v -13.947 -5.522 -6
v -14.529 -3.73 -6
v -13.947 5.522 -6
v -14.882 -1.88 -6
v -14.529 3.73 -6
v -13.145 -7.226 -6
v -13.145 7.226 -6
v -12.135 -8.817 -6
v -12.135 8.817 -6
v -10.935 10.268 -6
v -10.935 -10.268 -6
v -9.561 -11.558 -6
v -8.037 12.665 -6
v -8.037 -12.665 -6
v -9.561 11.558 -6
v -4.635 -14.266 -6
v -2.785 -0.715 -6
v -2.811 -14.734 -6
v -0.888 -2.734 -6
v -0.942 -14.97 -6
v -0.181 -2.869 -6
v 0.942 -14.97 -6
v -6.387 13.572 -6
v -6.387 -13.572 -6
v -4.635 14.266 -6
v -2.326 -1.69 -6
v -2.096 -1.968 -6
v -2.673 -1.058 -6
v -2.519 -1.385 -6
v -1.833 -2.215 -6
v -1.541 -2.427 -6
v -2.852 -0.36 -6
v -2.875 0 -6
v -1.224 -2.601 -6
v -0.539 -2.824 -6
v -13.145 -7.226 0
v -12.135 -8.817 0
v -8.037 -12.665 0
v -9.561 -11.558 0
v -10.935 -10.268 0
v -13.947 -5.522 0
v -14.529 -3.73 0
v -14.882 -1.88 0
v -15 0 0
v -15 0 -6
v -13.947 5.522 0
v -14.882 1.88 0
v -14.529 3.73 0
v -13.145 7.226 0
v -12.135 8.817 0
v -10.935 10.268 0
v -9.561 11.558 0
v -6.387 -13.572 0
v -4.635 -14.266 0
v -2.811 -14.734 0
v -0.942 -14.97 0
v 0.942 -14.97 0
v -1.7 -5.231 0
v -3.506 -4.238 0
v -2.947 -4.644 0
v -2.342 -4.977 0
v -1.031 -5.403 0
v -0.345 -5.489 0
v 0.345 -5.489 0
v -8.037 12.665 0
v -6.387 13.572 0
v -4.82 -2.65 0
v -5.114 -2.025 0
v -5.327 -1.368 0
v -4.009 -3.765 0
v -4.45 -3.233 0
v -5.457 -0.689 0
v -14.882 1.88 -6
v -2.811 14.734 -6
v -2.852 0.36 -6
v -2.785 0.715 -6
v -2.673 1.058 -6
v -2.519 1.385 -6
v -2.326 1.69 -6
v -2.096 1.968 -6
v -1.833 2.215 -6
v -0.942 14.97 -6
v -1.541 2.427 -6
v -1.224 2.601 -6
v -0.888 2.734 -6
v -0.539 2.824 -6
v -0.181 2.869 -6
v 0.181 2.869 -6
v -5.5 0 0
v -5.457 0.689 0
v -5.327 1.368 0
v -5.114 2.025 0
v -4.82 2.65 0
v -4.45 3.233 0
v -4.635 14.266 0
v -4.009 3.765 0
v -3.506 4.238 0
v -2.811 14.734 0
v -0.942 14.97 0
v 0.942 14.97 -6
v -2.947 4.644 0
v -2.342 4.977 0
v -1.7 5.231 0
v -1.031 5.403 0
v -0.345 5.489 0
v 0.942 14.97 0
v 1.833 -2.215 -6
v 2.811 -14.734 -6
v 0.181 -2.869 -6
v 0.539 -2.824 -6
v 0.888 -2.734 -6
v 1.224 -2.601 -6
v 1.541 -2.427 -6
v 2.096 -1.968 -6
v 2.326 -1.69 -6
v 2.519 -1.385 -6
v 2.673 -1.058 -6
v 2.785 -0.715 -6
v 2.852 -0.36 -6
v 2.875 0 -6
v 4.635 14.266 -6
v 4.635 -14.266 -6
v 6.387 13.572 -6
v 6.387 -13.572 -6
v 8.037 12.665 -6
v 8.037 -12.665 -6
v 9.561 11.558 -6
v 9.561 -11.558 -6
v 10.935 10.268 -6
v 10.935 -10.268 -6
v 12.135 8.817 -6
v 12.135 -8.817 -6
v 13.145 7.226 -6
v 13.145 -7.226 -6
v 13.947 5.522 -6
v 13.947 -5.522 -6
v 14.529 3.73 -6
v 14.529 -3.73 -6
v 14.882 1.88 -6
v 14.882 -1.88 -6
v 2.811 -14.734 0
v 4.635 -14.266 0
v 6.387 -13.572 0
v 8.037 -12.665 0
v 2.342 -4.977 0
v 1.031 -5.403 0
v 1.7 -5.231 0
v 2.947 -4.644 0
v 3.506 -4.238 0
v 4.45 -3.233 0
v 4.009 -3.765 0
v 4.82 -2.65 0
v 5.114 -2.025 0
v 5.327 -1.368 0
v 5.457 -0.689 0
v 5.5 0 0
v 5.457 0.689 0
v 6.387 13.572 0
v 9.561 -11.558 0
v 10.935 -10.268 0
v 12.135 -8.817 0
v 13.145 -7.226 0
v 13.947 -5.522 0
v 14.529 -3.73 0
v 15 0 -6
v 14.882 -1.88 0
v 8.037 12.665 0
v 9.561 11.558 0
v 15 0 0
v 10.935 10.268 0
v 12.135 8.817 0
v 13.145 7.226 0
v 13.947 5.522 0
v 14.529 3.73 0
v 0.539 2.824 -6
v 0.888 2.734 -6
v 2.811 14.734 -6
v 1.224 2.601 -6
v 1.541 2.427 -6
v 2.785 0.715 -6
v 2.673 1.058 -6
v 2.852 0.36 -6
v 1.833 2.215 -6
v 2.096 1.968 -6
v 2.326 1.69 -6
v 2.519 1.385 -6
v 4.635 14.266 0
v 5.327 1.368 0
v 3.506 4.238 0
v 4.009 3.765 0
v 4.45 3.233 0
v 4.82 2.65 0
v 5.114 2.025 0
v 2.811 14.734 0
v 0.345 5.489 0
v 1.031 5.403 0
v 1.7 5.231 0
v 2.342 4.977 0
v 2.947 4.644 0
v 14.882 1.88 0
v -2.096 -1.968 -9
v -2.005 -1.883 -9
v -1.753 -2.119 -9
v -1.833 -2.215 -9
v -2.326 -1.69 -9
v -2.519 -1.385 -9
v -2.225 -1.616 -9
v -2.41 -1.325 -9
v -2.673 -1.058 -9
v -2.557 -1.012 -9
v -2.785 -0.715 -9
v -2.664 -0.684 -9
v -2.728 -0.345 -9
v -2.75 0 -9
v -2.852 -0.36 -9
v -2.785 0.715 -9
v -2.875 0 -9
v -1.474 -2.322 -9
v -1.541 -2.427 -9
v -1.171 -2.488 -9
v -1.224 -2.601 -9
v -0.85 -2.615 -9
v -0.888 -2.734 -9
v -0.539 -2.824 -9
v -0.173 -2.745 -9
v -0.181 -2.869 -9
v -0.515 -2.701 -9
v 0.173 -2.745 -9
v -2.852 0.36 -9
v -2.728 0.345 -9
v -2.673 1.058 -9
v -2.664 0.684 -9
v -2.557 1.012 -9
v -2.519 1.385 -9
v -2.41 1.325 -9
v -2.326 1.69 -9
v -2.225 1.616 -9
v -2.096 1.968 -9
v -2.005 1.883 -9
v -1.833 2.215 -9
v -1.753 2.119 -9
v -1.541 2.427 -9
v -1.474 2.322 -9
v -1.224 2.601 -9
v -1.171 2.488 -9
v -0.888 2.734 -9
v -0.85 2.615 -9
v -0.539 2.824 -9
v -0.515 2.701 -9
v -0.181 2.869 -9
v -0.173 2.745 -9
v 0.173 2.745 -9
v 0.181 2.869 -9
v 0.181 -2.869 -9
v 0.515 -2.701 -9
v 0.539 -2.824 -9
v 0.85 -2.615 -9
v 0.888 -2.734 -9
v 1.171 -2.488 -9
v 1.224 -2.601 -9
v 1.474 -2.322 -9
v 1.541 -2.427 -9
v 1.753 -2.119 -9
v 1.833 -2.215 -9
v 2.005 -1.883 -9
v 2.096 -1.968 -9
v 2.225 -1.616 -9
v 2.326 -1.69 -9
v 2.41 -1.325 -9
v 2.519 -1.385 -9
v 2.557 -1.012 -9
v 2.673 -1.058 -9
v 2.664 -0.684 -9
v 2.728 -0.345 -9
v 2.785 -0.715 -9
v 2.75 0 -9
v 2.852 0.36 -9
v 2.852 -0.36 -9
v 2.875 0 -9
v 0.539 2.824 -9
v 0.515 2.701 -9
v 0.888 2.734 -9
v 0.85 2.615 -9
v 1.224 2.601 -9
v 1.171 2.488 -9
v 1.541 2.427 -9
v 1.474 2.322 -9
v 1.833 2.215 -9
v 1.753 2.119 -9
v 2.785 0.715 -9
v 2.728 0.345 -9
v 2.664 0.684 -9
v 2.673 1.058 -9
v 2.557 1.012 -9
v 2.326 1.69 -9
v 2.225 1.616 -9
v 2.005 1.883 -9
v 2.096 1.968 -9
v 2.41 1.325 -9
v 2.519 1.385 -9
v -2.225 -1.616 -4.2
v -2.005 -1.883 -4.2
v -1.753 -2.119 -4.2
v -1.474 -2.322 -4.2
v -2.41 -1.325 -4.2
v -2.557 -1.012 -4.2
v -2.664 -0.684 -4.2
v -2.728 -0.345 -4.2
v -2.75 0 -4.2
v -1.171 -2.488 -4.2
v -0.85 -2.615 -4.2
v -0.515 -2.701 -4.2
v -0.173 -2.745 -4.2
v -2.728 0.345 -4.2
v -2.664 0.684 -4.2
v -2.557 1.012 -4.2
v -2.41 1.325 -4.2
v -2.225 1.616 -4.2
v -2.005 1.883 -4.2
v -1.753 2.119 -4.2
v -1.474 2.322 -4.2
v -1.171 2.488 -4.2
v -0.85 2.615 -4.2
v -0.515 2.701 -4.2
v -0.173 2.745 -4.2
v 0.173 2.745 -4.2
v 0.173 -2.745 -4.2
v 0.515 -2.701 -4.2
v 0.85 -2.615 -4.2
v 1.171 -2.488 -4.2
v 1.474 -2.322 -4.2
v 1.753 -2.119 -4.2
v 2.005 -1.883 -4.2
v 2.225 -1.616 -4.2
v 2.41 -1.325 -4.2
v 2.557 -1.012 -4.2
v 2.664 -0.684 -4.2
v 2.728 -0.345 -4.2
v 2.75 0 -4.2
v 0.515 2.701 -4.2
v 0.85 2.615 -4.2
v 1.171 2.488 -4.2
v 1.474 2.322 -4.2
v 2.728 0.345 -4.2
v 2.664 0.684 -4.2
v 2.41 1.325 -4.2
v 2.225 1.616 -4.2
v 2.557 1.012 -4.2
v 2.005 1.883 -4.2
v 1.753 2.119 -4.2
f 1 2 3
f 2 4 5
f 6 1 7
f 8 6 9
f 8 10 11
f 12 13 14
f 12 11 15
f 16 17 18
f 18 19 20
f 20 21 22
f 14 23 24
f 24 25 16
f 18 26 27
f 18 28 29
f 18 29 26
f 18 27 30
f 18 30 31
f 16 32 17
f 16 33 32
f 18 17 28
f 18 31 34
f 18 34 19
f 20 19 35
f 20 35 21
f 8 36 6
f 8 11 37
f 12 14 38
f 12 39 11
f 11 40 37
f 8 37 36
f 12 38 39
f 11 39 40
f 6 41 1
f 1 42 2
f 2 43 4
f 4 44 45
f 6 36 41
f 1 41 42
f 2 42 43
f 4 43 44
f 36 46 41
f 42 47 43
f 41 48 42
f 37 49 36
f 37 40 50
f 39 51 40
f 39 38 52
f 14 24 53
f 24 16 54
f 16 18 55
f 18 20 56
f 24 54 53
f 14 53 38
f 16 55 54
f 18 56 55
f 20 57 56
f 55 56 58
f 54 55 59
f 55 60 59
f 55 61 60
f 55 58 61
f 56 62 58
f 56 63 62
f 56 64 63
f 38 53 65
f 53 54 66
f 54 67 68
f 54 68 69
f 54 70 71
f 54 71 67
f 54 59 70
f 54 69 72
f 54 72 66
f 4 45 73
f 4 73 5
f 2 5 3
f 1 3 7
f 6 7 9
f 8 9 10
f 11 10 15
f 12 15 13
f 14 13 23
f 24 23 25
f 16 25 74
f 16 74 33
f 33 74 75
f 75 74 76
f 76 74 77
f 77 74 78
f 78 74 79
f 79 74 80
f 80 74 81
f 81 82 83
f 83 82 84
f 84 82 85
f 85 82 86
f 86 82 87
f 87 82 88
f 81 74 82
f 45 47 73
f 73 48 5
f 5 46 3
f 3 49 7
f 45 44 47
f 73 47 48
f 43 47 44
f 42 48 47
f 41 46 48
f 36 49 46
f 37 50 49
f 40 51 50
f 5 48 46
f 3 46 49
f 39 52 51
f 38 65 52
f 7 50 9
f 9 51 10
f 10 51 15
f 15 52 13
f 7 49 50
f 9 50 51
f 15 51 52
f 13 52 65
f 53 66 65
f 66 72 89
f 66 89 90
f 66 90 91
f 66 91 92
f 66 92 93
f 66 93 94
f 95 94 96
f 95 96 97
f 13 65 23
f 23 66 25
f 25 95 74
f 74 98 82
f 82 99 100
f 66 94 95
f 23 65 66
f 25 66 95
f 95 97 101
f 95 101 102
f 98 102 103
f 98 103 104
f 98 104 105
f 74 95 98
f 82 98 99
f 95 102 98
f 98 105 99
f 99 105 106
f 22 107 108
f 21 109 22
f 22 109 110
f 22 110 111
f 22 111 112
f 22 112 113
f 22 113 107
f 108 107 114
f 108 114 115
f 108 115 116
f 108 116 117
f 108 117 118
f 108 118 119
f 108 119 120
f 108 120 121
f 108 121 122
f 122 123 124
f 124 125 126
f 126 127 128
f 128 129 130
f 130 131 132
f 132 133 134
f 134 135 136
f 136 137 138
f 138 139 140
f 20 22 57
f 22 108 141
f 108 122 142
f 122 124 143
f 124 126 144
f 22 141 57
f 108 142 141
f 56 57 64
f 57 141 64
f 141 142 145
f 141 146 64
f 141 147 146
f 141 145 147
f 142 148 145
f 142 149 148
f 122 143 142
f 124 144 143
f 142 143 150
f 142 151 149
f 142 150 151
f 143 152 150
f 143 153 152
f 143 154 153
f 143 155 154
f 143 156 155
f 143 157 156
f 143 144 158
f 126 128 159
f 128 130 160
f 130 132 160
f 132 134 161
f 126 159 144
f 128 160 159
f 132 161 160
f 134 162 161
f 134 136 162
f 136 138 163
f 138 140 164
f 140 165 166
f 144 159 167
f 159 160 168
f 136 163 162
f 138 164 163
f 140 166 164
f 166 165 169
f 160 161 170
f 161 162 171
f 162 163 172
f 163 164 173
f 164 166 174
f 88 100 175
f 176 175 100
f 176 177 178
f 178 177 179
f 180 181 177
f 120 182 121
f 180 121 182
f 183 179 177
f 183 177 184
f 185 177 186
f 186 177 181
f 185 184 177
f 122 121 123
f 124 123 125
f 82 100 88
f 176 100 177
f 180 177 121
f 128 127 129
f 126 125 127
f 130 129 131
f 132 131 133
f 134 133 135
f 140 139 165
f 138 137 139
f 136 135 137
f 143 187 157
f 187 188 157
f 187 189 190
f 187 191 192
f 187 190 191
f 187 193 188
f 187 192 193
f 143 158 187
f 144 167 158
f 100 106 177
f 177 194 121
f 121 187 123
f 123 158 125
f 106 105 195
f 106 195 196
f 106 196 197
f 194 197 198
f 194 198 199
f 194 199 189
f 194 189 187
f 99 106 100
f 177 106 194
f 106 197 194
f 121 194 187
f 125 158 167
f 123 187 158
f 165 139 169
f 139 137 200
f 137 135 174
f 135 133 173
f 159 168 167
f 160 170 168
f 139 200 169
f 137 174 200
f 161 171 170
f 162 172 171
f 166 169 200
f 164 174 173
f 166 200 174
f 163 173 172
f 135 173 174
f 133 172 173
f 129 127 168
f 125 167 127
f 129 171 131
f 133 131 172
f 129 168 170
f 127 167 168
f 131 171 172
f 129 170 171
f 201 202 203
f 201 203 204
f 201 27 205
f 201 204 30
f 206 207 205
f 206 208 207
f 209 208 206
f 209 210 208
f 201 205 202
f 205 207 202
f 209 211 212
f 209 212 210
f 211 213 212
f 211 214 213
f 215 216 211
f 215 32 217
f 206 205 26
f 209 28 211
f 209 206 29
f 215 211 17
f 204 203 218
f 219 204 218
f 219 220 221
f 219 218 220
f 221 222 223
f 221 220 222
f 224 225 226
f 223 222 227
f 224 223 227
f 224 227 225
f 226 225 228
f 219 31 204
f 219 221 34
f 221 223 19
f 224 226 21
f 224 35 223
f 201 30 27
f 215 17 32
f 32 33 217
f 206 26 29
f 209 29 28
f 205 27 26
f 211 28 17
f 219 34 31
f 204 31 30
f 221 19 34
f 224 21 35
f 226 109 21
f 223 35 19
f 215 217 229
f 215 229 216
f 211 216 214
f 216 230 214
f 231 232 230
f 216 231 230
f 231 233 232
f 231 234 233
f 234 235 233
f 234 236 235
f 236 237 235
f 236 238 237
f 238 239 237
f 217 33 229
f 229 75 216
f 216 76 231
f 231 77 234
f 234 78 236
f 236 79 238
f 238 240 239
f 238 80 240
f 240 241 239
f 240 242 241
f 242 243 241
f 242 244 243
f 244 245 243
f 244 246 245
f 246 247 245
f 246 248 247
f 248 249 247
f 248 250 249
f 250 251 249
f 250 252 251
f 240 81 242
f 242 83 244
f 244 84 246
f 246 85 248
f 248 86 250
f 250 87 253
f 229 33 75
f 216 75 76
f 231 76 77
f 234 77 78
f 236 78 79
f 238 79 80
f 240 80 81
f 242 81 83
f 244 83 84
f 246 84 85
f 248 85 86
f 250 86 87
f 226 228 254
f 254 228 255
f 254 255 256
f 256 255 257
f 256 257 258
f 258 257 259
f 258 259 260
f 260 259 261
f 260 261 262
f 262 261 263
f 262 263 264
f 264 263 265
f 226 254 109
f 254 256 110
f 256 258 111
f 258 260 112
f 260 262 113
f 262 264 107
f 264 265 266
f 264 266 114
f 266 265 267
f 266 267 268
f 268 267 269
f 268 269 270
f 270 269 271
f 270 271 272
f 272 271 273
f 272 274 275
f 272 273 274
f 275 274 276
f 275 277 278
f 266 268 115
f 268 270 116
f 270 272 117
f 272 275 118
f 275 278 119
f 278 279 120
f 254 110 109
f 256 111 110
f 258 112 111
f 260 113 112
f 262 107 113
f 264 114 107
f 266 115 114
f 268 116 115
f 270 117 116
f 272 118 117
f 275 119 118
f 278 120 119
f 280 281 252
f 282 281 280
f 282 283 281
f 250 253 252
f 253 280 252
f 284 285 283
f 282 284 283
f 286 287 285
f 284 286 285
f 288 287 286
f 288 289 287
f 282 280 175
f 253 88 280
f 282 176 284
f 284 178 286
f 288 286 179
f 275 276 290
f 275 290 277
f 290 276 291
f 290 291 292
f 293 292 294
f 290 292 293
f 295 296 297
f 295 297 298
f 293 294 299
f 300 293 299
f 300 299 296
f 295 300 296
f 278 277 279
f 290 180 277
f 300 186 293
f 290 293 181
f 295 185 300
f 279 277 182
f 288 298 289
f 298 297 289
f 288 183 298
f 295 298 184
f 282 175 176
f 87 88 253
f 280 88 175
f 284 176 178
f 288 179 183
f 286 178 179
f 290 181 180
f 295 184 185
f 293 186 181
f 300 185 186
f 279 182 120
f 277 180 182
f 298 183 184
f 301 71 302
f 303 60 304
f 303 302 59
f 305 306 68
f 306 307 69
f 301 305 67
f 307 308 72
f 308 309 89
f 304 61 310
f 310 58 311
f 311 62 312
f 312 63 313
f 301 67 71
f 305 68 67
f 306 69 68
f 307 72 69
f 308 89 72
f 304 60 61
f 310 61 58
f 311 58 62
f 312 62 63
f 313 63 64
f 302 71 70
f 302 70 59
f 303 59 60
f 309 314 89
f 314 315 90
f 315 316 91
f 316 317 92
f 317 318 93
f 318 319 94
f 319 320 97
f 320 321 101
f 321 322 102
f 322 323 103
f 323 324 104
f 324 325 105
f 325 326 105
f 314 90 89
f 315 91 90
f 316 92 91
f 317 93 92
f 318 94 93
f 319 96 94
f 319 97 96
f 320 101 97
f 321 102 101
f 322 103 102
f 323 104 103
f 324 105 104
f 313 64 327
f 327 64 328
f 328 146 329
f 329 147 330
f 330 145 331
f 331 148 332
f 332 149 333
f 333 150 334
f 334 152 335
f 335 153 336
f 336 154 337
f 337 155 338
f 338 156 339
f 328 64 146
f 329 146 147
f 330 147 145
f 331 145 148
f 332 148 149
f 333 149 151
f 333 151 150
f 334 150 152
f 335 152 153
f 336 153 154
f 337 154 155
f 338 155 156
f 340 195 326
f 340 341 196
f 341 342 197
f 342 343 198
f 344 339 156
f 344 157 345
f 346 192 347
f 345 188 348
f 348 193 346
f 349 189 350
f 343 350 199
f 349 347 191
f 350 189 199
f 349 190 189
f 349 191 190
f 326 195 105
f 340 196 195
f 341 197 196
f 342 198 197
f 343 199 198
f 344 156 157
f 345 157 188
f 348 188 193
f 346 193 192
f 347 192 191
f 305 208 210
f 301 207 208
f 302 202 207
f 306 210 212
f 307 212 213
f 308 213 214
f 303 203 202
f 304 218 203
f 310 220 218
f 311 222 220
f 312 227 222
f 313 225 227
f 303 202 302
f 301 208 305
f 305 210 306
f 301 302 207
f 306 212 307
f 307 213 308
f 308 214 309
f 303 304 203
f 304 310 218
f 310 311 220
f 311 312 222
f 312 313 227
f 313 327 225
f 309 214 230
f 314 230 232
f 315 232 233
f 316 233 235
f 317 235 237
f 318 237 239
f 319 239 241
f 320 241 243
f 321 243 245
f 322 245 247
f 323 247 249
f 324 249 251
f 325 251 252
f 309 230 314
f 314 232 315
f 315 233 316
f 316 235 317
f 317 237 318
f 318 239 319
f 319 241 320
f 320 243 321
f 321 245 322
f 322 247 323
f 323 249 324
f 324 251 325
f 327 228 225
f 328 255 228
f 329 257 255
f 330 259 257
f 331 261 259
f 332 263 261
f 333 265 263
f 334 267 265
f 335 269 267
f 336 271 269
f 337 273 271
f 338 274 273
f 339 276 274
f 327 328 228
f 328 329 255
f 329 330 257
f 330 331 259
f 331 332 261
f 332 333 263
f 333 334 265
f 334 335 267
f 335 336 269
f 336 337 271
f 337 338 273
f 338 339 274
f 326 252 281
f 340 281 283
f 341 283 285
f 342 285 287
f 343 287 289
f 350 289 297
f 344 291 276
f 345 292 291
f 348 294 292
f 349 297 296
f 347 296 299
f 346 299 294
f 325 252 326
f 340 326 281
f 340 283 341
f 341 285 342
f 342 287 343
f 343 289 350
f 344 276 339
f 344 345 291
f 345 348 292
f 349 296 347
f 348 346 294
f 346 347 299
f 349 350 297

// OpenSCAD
$fn = 50;

difference() {
	union() {
		translate(v = [0, 0, -6.0]) {
			cylinder(h = 6, r = 15.0);
		}
		#translate(v = [0, 0, -9.0]) {
			cylinder(h = 9, r = 2.875);
		}
	}
	union() {
		translate(v = [0, 0, 0]) {
			rotate(a = [0, 0, 0]) {
				difference() {
					union() {
						translate(v = [0, 0, -9.0]) {
							cylinder(h = 9, r = 2.25);
						}
						translate(v = [0, 0, -4.2]) {
							cylinder(h = 4.2, r1 = 2.75, r2 = 5.5);
						}
						translate(v = [0, 0, -9.0]) {
							cylinder(h = 9, r = 2.75);
						}
						translate(v = [0, 0, -9.0]) {
							cylinder(h = 9, r = 2.25);
						}
					}
					union();
				}
			}
		}
	}
}
